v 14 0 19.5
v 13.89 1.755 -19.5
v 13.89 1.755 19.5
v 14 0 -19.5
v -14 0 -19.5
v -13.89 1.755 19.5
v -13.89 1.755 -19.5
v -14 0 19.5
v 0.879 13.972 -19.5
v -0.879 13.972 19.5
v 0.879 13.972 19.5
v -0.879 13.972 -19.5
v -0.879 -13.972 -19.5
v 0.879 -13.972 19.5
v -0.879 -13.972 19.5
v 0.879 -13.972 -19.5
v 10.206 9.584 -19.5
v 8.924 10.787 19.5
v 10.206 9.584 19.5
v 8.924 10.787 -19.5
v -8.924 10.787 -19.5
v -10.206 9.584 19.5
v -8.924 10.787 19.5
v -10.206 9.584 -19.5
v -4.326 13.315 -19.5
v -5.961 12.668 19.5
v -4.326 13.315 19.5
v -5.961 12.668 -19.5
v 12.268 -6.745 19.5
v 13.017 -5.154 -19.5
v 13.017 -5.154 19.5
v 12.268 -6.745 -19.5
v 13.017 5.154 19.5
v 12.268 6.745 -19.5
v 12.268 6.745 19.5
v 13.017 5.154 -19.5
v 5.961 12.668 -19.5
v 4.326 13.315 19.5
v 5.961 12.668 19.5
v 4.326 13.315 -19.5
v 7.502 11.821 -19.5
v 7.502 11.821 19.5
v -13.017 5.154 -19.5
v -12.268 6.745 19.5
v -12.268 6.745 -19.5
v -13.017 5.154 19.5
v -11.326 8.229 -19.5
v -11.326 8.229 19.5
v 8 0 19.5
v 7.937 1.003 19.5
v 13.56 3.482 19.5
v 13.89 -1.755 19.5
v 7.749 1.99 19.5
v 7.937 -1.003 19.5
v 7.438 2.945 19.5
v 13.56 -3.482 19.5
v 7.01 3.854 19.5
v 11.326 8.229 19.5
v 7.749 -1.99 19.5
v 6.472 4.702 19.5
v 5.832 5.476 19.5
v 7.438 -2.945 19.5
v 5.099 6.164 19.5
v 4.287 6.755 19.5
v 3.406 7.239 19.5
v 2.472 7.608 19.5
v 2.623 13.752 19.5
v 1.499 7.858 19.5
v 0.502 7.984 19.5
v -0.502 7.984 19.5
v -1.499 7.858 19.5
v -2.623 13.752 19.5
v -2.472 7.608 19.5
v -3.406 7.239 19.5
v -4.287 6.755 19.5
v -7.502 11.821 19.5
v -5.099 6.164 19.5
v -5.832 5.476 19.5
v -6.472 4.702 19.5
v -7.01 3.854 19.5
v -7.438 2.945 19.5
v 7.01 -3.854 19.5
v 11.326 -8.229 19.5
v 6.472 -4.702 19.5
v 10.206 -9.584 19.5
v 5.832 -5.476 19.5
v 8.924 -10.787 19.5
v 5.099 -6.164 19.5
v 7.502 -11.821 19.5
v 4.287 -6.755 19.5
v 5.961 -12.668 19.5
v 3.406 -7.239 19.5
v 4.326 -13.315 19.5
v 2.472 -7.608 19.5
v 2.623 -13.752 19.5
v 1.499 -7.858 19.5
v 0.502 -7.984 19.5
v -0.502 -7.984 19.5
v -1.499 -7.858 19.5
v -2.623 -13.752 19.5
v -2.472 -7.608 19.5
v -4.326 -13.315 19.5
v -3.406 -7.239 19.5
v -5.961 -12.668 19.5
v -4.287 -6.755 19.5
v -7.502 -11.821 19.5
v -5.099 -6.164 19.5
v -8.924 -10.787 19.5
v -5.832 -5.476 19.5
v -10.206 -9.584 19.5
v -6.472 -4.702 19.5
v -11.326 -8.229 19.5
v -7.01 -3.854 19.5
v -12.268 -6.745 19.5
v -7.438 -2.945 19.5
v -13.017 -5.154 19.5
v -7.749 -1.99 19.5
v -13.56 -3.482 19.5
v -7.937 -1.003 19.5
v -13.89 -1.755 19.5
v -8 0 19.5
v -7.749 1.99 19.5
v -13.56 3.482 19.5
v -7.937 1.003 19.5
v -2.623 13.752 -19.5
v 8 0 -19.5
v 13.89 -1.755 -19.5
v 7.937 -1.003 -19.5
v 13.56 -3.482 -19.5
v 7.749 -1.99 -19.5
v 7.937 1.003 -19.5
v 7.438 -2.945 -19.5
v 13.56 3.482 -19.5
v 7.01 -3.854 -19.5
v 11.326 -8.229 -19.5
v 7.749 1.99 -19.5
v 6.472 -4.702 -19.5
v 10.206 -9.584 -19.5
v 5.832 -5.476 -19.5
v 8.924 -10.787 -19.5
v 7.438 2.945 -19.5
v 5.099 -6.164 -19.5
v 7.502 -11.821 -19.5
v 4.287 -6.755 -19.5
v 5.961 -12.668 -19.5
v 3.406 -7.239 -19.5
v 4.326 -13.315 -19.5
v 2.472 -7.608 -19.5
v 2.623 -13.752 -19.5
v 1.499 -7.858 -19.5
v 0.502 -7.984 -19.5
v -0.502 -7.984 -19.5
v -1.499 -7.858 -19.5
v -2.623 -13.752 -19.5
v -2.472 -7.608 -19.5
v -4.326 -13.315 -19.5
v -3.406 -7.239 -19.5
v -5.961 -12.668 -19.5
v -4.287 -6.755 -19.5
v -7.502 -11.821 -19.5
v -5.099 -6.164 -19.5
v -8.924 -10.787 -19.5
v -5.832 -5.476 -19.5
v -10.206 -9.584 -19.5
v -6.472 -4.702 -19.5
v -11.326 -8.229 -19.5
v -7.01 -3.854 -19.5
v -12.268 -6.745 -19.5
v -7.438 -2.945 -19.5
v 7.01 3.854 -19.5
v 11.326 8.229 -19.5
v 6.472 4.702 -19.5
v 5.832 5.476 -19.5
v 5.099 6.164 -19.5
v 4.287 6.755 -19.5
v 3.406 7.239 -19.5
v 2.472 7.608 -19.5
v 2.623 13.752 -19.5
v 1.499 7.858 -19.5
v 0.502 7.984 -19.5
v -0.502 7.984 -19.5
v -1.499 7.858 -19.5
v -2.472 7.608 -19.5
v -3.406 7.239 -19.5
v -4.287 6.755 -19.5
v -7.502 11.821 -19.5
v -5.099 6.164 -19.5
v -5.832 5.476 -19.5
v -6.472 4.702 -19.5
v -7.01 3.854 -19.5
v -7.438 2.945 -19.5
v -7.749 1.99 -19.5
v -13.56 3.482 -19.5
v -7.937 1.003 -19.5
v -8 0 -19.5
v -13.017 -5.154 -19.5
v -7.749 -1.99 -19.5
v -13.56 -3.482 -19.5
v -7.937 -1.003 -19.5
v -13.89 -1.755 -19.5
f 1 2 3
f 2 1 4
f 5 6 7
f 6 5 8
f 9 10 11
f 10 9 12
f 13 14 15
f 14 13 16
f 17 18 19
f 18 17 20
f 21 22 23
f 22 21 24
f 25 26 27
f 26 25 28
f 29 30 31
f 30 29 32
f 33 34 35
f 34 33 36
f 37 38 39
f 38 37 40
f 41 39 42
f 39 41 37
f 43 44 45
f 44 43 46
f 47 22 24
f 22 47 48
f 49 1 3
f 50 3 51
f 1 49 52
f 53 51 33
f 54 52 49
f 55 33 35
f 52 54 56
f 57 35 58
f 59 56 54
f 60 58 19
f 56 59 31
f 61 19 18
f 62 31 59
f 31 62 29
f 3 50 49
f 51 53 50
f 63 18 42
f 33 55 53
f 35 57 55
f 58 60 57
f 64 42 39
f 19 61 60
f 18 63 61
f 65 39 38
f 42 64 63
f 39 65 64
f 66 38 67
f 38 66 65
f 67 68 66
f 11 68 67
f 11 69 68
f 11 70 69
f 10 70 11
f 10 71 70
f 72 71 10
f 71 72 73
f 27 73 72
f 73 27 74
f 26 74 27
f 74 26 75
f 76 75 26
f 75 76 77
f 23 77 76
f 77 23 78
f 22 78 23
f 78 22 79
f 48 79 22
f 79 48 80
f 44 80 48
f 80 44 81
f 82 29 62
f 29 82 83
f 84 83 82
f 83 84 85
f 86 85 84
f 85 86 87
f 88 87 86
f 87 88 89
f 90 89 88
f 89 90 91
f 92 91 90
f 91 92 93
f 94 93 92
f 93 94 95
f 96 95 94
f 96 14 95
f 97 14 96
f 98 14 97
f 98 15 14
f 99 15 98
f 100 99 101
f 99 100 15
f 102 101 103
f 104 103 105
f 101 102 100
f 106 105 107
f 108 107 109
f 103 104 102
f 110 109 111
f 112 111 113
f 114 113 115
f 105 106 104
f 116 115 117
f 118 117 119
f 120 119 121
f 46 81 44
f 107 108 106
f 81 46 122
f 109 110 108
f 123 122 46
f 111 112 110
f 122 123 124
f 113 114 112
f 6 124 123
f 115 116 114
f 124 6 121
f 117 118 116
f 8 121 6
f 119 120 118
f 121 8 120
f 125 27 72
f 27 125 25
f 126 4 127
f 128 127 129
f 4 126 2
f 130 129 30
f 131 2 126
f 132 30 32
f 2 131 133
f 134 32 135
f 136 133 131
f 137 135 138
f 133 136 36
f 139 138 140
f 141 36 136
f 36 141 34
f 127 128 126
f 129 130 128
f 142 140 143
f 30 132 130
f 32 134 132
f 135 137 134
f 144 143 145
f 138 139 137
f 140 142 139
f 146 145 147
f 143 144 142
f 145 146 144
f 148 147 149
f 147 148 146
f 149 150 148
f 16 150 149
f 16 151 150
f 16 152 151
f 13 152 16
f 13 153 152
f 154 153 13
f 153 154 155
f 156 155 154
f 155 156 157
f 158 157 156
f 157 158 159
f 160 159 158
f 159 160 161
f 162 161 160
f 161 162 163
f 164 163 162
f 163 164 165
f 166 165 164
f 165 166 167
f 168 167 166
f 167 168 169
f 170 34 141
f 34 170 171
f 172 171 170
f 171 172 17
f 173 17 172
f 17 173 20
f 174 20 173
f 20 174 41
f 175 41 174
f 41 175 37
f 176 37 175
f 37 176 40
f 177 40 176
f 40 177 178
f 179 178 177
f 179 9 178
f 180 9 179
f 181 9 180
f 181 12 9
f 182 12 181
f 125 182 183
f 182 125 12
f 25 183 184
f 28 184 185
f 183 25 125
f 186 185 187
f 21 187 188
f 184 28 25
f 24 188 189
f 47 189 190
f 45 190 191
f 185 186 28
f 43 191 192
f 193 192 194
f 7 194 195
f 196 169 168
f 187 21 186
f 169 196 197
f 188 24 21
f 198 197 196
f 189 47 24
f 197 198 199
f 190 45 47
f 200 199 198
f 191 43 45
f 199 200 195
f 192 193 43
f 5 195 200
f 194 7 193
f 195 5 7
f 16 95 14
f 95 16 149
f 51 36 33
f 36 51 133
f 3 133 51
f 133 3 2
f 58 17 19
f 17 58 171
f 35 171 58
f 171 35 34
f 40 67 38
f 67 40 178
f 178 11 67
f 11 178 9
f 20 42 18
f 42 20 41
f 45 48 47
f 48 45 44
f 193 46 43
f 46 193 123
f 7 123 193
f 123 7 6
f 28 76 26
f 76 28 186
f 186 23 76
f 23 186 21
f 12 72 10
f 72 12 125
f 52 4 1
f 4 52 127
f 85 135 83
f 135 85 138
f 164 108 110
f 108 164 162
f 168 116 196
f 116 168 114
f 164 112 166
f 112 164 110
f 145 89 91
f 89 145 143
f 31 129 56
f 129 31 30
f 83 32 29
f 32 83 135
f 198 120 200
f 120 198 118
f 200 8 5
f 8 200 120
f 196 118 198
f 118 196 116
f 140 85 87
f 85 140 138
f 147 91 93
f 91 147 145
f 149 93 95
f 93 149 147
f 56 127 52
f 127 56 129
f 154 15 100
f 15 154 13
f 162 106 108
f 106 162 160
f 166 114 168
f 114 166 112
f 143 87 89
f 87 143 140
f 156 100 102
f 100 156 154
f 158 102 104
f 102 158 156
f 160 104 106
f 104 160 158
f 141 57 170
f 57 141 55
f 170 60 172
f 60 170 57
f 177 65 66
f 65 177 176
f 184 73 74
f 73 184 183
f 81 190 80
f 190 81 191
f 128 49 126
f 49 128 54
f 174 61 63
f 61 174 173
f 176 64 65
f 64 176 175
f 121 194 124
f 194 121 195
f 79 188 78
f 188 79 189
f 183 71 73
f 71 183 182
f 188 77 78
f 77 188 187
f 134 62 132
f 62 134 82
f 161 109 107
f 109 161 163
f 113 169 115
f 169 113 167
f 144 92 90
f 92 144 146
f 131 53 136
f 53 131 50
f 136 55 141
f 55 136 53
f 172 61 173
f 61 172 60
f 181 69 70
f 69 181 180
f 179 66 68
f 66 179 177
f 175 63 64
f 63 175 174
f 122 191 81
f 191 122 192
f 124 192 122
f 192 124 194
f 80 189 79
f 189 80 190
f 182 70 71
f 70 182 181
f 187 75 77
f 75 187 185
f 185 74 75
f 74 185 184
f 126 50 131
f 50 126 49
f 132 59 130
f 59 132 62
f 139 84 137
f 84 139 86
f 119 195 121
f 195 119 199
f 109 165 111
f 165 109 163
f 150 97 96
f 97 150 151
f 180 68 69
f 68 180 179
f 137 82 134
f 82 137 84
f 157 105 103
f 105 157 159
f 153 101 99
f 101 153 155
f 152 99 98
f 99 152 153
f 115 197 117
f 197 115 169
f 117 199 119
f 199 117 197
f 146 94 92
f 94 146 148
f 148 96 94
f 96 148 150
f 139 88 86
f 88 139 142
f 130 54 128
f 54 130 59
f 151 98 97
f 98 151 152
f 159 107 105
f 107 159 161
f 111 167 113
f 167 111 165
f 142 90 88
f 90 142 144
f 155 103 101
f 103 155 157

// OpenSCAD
$fn = 50;


difference() {
	union() {
		translate(v = [0, 0, -19.5000000000]) {
			cylinder(h = 39, r = 14.0000000000);
		}
	}
	union() {
		translate(v = [0, 0, -100.0000000000]) {
			cylinder(h = 200, r = 8);
		}
	}
}
